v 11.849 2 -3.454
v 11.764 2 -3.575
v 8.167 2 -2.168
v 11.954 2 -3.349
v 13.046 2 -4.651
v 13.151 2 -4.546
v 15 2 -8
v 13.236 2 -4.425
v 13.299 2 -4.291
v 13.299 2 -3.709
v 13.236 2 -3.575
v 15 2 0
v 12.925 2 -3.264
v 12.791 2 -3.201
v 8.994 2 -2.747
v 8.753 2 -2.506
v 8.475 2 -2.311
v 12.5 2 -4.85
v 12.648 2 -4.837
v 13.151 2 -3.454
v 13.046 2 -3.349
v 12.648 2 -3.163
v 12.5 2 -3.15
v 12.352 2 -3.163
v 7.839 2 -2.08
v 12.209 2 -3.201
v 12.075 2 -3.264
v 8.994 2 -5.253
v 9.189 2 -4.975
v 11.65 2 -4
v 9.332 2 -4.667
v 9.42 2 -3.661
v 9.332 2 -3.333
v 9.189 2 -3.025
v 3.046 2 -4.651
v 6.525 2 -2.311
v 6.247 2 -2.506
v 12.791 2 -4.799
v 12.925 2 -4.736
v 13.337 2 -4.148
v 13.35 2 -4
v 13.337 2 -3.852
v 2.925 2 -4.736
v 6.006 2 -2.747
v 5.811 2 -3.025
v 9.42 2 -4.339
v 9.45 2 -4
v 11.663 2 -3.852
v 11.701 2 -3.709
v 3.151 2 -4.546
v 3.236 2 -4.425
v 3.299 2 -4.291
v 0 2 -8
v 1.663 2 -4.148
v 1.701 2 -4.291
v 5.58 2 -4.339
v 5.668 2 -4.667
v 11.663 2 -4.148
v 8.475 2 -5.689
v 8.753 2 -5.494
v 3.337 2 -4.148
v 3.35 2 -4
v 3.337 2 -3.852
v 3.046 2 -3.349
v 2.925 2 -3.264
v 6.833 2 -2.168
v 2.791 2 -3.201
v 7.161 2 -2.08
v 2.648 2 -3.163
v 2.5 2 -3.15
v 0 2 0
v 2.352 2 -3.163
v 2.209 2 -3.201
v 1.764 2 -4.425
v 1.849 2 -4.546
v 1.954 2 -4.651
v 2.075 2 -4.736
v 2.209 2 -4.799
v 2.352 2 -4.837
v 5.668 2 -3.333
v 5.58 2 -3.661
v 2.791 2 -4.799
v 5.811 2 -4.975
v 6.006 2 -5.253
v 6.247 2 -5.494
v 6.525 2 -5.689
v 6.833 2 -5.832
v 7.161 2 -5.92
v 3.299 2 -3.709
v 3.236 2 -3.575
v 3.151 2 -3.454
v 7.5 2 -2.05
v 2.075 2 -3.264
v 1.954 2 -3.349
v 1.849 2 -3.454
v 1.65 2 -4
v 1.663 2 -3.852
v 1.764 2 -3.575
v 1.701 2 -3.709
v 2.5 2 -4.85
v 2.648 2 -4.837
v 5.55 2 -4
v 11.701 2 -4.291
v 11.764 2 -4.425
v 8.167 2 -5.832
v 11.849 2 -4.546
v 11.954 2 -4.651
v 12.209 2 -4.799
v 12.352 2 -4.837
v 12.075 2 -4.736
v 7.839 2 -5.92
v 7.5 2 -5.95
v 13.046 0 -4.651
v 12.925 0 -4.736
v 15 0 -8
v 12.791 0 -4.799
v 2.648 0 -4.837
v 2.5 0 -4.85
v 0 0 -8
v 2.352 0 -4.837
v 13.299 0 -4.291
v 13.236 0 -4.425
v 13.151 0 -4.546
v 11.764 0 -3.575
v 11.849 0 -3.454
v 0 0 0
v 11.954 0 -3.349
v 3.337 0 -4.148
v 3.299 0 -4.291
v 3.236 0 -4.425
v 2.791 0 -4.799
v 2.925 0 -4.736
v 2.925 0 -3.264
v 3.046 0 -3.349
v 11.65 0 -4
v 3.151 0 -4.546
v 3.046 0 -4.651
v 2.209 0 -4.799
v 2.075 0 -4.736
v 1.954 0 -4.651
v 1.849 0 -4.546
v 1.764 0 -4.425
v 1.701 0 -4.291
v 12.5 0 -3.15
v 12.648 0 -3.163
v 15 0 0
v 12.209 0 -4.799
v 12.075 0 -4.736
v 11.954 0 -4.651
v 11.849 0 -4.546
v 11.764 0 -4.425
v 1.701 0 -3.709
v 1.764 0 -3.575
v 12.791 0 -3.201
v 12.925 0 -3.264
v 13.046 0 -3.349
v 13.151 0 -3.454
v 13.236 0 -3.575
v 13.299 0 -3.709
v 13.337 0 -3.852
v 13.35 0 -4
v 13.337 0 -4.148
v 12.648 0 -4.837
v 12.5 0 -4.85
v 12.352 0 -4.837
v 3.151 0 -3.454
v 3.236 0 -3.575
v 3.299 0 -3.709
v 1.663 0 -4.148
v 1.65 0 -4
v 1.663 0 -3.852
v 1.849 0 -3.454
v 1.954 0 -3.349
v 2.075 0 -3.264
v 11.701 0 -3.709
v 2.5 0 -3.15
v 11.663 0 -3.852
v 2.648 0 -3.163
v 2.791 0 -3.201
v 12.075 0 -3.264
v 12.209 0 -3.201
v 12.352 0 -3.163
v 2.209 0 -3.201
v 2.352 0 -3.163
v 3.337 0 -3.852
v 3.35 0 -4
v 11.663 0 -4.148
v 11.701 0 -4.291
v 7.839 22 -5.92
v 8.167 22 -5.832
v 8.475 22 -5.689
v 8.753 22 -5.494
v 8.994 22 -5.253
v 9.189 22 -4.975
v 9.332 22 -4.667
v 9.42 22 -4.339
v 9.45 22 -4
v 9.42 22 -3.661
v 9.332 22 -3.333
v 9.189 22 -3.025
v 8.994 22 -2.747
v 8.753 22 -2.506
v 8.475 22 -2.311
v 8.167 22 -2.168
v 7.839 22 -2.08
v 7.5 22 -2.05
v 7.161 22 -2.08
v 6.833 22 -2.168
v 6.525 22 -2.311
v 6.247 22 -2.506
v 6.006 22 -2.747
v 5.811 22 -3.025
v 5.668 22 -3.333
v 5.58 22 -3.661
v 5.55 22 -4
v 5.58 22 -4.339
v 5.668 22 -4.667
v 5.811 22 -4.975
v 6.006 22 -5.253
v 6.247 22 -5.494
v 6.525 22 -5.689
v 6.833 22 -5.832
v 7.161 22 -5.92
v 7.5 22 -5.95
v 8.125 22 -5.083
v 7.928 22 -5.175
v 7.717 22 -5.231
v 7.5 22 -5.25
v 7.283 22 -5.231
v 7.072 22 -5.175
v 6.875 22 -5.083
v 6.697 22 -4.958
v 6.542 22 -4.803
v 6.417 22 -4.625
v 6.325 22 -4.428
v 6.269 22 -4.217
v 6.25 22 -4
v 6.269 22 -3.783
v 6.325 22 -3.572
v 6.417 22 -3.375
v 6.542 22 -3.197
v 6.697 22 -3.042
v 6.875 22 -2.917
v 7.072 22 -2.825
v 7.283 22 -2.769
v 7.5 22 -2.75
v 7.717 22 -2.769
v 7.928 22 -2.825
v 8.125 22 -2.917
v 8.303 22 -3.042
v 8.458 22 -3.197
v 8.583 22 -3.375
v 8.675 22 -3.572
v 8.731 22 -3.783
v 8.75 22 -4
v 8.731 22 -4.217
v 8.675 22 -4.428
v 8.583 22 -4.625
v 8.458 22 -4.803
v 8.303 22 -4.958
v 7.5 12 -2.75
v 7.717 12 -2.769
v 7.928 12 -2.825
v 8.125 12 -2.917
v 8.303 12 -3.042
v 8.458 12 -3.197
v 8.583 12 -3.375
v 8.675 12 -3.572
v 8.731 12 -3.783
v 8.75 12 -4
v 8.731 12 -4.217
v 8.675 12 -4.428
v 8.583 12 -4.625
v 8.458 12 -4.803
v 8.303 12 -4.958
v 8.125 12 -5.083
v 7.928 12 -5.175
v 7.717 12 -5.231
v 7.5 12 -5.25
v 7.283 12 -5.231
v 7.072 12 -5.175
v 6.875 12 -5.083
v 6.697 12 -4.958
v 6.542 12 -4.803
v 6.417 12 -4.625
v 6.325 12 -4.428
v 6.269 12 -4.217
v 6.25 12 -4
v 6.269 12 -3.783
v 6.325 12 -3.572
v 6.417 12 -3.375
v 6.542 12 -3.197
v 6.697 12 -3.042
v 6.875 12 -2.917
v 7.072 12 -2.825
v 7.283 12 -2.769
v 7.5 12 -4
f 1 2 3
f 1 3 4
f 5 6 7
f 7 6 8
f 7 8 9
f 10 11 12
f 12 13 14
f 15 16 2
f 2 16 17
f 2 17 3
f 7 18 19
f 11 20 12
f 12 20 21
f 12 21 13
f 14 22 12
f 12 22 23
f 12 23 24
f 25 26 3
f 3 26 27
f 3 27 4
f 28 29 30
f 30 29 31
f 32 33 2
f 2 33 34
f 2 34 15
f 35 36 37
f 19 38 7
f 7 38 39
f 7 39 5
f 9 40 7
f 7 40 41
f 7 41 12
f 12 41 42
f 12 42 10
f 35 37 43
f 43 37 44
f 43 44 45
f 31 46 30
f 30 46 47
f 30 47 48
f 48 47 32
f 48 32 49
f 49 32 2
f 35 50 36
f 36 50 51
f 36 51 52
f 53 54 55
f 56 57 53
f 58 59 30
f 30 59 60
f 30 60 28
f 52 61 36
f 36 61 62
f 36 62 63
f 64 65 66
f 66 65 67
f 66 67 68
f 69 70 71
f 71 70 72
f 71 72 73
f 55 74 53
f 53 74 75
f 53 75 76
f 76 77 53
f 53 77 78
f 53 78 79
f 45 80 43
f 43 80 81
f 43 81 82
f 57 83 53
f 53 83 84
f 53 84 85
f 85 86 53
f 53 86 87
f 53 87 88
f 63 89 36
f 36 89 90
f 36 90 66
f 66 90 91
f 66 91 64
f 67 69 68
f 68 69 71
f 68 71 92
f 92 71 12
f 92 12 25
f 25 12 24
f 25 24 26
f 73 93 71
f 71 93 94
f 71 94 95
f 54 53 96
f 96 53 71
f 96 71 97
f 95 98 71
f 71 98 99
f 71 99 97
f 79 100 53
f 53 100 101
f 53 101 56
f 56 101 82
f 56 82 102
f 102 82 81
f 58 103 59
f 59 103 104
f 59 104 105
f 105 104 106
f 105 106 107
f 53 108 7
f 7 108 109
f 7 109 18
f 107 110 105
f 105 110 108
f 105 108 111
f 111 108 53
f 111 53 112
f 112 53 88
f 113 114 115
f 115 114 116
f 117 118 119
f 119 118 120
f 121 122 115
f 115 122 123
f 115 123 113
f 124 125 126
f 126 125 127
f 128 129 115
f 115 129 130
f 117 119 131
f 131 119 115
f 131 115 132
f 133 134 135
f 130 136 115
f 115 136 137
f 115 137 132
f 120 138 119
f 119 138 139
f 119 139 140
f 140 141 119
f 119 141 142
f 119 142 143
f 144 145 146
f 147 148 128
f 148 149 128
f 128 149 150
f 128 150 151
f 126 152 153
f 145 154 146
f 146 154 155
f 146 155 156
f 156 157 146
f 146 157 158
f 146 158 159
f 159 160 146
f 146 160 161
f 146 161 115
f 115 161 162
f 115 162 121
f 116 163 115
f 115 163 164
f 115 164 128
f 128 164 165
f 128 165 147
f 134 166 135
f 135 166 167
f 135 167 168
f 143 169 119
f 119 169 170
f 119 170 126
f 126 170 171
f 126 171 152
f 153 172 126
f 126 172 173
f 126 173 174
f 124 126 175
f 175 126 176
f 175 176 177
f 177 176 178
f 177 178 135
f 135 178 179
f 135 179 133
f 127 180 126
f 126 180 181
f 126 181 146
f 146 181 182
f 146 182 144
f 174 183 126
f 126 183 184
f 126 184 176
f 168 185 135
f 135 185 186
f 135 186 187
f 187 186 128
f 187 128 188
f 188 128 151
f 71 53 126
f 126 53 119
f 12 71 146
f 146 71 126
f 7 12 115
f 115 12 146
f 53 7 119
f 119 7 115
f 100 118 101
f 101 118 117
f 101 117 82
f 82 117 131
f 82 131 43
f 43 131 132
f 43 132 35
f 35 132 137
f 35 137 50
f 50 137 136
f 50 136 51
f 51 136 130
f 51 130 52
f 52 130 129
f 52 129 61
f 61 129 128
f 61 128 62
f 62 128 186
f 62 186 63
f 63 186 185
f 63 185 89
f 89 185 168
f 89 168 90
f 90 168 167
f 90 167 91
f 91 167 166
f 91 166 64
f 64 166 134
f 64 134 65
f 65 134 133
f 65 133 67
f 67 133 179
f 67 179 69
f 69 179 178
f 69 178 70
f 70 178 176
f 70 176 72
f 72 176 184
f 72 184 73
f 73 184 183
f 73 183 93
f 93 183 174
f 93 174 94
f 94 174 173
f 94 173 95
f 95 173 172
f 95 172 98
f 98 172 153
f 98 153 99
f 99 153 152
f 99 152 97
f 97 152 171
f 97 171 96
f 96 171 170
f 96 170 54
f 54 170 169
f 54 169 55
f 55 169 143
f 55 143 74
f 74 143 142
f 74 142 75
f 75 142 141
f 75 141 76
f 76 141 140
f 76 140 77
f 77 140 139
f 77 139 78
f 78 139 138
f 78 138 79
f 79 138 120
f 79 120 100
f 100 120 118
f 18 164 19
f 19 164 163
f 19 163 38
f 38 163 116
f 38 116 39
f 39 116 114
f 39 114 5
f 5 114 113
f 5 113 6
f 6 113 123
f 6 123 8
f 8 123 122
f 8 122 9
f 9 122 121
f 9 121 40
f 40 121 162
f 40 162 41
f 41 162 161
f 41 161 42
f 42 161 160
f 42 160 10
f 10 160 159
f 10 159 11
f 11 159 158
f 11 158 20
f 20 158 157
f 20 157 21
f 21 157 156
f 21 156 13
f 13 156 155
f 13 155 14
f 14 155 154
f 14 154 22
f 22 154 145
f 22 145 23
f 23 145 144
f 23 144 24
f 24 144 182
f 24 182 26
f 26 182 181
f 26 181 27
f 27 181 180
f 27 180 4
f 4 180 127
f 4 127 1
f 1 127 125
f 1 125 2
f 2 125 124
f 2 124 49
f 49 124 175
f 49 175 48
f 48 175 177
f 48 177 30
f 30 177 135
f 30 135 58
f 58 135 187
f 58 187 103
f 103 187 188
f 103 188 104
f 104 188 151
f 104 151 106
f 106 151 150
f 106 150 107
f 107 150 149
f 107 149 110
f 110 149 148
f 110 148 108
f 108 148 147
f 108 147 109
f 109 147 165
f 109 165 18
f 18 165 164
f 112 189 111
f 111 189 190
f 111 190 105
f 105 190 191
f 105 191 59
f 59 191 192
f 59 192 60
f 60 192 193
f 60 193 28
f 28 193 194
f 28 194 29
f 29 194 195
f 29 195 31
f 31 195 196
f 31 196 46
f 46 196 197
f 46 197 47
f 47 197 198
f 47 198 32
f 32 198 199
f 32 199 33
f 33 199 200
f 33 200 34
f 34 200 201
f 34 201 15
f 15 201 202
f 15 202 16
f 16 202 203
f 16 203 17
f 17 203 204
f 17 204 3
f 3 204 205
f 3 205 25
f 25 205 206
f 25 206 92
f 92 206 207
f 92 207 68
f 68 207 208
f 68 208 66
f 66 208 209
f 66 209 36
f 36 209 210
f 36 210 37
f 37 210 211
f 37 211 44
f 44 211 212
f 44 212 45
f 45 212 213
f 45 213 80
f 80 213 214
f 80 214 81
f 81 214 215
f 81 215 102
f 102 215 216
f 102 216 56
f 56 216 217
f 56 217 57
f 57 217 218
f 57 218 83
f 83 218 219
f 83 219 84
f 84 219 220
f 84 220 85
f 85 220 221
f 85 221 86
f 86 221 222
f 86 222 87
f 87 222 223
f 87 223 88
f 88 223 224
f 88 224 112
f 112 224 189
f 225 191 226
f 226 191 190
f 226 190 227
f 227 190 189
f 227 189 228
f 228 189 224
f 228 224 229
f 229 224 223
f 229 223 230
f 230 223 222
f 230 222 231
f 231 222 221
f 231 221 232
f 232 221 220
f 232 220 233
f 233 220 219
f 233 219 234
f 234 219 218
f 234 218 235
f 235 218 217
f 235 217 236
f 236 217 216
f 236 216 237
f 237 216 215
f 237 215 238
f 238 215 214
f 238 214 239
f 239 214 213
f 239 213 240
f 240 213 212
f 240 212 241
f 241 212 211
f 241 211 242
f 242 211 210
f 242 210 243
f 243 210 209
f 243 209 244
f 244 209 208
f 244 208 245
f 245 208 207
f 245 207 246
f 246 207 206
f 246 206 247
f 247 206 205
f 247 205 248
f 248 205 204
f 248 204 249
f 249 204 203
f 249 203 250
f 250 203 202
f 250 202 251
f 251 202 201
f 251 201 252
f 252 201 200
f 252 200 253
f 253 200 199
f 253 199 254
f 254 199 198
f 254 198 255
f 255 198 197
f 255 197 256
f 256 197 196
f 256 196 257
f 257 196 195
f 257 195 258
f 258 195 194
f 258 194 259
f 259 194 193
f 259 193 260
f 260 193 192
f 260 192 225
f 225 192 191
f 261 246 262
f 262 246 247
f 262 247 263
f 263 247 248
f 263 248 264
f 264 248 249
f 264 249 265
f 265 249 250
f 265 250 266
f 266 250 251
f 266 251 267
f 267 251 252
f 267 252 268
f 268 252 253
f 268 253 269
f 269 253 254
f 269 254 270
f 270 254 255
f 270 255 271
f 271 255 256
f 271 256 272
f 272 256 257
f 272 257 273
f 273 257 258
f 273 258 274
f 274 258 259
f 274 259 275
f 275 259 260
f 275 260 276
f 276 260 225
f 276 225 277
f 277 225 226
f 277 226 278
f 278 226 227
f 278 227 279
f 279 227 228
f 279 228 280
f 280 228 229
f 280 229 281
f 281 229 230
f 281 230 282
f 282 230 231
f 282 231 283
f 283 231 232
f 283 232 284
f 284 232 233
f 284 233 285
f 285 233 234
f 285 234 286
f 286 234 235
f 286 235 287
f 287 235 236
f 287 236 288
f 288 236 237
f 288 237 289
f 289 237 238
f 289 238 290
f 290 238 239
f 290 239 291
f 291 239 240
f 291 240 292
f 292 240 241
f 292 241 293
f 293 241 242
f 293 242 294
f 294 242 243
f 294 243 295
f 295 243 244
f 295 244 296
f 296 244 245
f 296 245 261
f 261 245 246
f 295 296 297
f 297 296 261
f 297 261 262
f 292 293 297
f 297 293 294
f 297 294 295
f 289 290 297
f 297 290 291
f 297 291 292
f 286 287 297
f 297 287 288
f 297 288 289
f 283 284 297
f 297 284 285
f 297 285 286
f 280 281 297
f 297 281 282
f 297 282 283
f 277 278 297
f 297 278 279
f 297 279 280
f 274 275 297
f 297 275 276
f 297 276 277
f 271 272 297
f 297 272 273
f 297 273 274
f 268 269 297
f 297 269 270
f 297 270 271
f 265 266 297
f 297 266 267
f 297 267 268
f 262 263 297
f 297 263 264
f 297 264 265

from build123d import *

# Parameters (mm, degrees)
SKETCH_1_W          = 15
SKETCH_1_H          = 8
SKETCH_1_R          = 0.85
EXTRUDE_1_DEPTH     = 2
SKETCH_2_R          = 1.95
EXTRUDE_2_DEPTH     = 20
SKETCH_3_R          = 1.25
CUT_EXTRUDE_1_DEPTH = 10


with BuildPart() as part:
    # 草图1 → 凸台-拉伸1 (new body)
    with BuildSketch(Plane(origin=(0, 0, 0), x_dir=(1, 0, 0), z_dir=(0, 1, 0))):
        with Locations((7.5, 4)):
            Rectangle(SKETCH_1_W, SKETCH_1_H)
        with Locations(Location((2.5, 4, 0), (0, 0, 270))):
            Circle(SKETCH_1_R, mode=Mode.SUBTRACT)
        with Locations(Location((12.5, 4, 0), (0, 0, 90))):
            Circle(SKETCH_1_R, mode=Mode.SUBTRACT)
    extrude(amount=EXTRUDE_1_DEPTH)

    # 草图2 → 凸台-拉伸2 (add)
    with BuildSketch(Plane(origin=(0, 2, 0), x_dir=(1, 0, 0), z_dir=(0, 1, 0))):
        with Locations(Location((7.5, 4, 0), (0, 0, 90))):
            Circle(SKETCH_2_R)
    extrude(amount=EXTRUDE_2_DEPTH)

    # 草图3 → 切除-拉伸1 (cut)
    with BuildSketch(Plane(origin=(0, 22, 0), x_dir=(1, 0, 0), z_dir=(0, 1, 0))):
        with Locations(Location((7.5, 4, 0), (0, 0, 270))):
            Circle(SKETCH_3_R)
    extrude(amount=-CUT_EXTRUDE_1_DEPTH, mode=Mode.SUBTRACT)


solid = part.part
